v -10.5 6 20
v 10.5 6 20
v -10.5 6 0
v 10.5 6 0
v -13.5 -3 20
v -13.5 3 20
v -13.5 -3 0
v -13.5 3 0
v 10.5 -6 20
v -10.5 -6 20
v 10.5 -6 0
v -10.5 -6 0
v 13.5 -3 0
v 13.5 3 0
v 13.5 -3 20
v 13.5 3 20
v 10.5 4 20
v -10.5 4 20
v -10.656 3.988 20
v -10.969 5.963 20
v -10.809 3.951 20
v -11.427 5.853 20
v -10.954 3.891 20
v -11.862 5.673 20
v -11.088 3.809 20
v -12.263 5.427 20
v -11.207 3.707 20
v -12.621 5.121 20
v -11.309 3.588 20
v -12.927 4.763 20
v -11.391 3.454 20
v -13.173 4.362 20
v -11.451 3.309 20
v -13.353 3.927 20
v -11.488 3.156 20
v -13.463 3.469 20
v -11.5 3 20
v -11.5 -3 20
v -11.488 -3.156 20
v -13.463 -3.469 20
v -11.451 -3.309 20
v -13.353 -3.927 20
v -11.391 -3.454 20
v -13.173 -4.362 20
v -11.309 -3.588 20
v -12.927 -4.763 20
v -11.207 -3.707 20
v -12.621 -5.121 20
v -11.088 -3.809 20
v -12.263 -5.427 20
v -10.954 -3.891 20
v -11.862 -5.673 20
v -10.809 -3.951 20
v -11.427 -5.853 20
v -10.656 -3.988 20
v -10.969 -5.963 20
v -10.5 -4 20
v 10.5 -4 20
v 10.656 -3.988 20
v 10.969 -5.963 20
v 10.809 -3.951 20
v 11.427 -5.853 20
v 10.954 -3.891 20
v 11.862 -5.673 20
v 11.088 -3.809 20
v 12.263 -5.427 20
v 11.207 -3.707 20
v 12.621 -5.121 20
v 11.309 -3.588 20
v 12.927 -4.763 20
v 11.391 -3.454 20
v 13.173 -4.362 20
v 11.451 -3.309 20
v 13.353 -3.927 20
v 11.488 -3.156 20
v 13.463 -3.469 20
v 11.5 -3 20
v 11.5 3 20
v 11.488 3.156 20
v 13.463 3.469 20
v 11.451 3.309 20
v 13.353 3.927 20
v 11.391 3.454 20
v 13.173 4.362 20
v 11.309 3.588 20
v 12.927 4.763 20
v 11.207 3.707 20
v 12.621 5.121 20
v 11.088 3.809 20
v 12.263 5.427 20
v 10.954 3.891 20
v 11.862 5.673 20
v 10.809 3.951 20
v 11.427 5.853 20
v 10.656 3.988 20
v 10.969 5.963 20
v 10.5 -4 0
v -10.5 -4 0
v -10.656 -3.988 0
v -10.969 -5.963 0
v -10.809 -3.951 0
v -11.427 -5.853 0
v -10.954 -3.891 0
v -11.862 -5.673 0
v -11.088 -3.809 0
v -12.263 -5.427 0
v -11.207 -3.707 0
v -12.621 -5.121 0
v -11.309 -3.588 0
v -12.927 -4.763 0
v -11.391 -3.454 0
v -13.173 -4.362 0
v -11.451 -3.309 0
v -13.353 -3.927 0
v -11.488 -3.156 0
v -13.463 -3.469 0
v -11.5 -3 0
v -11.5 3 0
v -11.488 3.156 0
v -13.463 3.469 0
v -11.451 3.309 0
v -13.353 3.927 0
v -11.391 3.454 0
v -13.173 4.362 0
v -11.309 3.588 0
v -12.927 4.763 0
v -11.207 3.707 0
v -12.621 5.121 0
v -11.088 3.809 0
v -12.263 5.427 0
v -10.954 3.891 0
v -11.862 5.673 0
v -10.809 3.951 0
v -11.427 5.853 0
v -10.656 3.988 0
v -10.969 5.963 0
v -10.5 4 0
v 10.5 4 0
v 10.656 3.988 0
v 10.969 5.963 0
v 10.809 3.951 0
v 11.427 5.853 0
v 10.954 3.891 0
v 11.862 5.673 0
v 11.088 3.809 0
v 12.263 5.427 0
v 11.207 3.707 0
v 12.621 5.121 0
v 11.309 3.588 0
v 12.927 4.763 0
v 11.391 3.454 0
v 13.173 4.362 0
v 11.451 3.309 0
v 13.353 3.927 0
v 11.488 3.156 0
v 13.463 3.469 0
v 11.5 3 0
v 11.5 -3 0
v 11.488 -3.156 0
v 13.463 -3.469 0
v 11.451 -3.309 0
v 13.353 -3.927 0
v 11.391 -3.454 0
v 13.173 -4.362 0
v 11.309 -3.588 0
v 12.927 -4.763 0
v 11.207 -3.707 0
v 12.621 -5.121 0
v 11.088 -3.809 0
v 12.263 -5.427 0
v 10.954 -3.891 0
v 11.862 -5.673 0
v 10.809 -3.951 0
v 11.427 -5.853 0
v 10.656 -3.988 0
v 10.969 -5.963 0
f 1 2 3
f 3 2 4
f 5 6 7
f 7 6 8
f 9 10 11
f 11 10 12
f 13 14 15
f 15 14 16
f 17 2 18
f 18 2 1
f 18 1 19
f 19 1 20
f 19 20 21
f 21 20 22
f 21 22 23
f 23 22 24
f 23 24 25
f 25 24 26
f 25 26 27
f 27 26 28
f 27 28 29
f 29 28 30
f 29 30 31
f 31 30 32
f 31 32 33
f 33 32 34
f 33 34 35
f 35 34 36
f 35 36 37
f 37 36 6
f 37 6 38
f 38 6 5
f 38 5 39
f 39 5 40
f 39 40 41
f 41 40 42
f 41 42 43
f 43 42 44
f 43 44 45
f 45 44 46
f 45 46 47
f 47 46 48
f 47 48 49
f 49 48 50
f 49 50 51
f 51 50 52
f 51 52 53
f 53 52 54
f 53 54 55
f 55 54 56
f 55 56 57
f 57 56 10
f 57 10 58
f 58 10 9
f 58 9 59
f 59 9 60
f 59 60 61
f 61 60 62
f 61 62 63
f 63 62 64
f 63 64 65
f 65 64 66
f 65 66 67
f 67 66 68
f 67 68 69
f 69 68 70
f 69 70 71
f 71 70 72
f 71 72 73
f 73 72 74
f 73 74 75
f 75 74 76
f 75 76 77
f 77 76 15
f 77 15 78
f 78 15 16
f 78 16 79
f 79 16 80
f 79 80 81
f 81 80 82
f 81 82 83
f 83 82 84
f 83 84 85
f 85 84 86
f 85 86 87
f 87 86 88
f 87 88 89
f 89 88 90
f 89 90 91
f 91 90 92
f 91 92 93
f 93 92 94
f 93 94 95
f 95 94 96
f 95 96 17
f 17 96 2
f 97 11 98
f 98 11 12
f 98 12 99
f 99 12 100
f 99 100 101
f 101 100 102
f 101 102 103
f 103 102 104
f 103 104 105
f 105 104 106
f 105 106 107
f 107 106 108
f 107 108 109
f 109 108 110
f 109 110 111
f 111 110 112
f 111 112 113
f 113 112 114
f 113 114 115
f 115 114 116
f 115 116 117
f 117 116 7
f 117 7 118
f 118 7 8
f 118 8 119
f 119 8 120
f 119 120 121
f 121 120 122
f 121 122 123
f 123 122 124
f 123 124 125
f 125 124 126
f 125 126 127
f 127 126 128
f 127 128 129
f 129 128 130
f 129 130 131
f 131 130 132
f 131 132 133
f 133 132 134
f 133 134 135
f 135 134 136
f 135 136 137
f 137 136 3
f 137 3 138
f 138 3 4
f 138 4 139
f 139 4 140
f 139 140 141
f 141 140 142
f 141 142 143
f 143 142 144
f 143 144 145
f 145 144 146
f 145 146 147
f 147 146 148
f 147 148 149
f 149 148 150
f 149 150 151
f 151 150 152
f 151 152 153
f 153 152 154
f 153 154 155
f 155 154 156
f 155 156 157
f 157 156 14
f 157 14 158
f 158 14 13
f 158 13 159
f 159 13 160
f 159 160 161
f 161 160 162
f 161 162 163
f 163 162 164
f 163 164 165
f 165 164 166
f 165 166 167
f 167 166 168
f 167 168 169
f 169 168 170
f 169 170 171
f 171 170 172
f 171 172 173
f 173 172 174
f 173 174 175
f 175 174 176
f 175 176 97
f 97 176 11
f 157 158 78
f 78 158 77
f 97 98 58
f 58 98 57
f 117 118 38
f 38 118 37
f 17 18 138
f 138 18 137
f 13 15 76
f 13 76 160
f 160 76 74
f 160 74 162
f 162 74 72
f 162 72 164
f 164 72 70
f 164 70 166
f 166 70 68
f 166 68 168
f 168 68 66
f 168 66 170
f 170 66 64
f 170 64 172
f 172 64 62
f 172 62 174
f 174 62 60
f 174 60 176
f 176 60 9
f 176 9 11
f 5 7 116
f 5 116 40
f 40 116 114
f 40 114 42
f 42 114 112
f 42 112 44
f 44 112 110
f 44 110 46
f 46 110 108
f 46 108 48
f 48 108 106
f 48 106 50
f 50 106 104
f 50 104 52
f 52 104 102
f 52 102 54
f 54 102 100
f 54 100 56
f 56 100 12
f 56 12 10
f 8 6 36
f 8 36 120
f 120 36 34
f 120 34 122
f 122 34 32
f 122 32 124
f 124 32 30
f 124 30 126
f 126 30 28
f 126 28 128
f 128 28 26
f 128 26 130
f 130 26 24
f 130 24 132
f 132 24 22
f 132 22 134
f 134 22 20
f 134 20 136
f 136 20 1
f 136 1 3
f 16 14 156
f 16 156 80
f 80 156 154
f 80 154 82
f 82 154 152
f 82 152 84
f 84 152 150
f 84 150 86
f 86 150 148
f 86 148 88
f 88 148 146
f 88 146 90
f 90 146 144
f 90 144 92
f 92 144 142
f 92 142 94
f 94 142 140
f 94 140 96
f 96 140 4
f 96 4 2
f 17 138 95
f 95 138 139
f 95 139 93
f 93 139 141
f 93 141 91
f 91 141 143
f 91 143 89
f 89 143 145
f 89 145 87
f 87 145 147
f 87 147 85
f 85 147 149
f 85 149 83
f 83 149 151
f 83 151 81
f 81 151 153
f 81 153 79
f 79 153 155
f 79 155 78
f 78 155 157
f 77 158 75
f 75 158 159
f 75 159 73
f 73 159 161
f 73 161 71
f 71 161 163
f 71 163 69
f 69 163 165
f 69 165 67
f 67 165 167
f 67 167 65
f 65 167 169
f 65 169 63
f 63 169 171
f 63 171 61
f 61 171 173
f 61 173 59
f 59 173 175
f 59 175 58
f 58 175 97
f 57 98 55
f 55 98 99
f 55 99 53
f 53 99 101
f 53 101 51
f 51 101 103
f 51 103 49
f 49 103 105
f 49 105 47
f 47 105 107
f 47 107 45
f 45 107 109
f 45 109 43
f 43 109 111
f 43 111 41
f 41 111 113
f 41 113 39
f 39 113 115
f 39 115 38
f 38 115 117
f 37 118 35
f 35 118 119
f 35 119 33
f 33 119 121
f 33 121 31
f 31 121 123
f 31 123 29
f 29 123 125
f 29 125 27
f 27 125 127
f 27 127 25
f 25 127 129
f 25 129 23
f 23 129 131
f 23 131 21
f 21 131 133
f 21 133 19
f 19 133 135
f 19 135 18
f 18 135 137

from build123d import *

# Parameters (mm, degrees)
CROQUIS1_W              = 27
CROQUIS1_H              = 12
SALIENTE_EXTRUIR1_DEPTH = 20
CROQUIS2_W              = 23
CROQUIS2_H              = 8
CORTAR_EXTRUIR1_DEPTH   = 20
REDONDEO1_R             = 3
REDONDEO2_R             = 1


with BuildPart() as part:
    # Croquis1 → Saliente-Extruir1 (new body)
    with BuildSketch(Plane.XY):
        Rectangle(CROQUIS1_W, CROQUIS1_H)
    extrude(amount=SALIENTE_EXTRUIR1_DEPTH)

    # Croquis2 → Cortar-Extruir1 (cut)
    with BuildSketch(Plane.XY.offset(20)):
        Rectangle(CROQUIS2_W, CROQUIS2_H)
    extrude(amount=-CORTAR_EXTRUIR1_DEPTH, mode=Mode.SUBTRACT)

    # Redondeo1
    redondeo1_edges = [part.edges().sort_by_distance(p)[0] for p in [
        (-13.5, 6, 10),
        (-13.5, -6, 10),
        (13.5, -6, 10),
        (13.5, 6, 10),
    ]]
    fillet(redondeo1_edges, radius=REDONDEO1_R)

    # Redondeo2
    redondeo2_edges = [part.edges().sort_by_distance(p)[0] for p in [
        (11.5, 4, 10),
        (11.5, -4, 10),
        (-11.5, -4, 10),
        (-11.5, 4, 10),
    ]]
    fillet(redondeo2_edges, radius=REDONDEO2_R)


solid = part.part
